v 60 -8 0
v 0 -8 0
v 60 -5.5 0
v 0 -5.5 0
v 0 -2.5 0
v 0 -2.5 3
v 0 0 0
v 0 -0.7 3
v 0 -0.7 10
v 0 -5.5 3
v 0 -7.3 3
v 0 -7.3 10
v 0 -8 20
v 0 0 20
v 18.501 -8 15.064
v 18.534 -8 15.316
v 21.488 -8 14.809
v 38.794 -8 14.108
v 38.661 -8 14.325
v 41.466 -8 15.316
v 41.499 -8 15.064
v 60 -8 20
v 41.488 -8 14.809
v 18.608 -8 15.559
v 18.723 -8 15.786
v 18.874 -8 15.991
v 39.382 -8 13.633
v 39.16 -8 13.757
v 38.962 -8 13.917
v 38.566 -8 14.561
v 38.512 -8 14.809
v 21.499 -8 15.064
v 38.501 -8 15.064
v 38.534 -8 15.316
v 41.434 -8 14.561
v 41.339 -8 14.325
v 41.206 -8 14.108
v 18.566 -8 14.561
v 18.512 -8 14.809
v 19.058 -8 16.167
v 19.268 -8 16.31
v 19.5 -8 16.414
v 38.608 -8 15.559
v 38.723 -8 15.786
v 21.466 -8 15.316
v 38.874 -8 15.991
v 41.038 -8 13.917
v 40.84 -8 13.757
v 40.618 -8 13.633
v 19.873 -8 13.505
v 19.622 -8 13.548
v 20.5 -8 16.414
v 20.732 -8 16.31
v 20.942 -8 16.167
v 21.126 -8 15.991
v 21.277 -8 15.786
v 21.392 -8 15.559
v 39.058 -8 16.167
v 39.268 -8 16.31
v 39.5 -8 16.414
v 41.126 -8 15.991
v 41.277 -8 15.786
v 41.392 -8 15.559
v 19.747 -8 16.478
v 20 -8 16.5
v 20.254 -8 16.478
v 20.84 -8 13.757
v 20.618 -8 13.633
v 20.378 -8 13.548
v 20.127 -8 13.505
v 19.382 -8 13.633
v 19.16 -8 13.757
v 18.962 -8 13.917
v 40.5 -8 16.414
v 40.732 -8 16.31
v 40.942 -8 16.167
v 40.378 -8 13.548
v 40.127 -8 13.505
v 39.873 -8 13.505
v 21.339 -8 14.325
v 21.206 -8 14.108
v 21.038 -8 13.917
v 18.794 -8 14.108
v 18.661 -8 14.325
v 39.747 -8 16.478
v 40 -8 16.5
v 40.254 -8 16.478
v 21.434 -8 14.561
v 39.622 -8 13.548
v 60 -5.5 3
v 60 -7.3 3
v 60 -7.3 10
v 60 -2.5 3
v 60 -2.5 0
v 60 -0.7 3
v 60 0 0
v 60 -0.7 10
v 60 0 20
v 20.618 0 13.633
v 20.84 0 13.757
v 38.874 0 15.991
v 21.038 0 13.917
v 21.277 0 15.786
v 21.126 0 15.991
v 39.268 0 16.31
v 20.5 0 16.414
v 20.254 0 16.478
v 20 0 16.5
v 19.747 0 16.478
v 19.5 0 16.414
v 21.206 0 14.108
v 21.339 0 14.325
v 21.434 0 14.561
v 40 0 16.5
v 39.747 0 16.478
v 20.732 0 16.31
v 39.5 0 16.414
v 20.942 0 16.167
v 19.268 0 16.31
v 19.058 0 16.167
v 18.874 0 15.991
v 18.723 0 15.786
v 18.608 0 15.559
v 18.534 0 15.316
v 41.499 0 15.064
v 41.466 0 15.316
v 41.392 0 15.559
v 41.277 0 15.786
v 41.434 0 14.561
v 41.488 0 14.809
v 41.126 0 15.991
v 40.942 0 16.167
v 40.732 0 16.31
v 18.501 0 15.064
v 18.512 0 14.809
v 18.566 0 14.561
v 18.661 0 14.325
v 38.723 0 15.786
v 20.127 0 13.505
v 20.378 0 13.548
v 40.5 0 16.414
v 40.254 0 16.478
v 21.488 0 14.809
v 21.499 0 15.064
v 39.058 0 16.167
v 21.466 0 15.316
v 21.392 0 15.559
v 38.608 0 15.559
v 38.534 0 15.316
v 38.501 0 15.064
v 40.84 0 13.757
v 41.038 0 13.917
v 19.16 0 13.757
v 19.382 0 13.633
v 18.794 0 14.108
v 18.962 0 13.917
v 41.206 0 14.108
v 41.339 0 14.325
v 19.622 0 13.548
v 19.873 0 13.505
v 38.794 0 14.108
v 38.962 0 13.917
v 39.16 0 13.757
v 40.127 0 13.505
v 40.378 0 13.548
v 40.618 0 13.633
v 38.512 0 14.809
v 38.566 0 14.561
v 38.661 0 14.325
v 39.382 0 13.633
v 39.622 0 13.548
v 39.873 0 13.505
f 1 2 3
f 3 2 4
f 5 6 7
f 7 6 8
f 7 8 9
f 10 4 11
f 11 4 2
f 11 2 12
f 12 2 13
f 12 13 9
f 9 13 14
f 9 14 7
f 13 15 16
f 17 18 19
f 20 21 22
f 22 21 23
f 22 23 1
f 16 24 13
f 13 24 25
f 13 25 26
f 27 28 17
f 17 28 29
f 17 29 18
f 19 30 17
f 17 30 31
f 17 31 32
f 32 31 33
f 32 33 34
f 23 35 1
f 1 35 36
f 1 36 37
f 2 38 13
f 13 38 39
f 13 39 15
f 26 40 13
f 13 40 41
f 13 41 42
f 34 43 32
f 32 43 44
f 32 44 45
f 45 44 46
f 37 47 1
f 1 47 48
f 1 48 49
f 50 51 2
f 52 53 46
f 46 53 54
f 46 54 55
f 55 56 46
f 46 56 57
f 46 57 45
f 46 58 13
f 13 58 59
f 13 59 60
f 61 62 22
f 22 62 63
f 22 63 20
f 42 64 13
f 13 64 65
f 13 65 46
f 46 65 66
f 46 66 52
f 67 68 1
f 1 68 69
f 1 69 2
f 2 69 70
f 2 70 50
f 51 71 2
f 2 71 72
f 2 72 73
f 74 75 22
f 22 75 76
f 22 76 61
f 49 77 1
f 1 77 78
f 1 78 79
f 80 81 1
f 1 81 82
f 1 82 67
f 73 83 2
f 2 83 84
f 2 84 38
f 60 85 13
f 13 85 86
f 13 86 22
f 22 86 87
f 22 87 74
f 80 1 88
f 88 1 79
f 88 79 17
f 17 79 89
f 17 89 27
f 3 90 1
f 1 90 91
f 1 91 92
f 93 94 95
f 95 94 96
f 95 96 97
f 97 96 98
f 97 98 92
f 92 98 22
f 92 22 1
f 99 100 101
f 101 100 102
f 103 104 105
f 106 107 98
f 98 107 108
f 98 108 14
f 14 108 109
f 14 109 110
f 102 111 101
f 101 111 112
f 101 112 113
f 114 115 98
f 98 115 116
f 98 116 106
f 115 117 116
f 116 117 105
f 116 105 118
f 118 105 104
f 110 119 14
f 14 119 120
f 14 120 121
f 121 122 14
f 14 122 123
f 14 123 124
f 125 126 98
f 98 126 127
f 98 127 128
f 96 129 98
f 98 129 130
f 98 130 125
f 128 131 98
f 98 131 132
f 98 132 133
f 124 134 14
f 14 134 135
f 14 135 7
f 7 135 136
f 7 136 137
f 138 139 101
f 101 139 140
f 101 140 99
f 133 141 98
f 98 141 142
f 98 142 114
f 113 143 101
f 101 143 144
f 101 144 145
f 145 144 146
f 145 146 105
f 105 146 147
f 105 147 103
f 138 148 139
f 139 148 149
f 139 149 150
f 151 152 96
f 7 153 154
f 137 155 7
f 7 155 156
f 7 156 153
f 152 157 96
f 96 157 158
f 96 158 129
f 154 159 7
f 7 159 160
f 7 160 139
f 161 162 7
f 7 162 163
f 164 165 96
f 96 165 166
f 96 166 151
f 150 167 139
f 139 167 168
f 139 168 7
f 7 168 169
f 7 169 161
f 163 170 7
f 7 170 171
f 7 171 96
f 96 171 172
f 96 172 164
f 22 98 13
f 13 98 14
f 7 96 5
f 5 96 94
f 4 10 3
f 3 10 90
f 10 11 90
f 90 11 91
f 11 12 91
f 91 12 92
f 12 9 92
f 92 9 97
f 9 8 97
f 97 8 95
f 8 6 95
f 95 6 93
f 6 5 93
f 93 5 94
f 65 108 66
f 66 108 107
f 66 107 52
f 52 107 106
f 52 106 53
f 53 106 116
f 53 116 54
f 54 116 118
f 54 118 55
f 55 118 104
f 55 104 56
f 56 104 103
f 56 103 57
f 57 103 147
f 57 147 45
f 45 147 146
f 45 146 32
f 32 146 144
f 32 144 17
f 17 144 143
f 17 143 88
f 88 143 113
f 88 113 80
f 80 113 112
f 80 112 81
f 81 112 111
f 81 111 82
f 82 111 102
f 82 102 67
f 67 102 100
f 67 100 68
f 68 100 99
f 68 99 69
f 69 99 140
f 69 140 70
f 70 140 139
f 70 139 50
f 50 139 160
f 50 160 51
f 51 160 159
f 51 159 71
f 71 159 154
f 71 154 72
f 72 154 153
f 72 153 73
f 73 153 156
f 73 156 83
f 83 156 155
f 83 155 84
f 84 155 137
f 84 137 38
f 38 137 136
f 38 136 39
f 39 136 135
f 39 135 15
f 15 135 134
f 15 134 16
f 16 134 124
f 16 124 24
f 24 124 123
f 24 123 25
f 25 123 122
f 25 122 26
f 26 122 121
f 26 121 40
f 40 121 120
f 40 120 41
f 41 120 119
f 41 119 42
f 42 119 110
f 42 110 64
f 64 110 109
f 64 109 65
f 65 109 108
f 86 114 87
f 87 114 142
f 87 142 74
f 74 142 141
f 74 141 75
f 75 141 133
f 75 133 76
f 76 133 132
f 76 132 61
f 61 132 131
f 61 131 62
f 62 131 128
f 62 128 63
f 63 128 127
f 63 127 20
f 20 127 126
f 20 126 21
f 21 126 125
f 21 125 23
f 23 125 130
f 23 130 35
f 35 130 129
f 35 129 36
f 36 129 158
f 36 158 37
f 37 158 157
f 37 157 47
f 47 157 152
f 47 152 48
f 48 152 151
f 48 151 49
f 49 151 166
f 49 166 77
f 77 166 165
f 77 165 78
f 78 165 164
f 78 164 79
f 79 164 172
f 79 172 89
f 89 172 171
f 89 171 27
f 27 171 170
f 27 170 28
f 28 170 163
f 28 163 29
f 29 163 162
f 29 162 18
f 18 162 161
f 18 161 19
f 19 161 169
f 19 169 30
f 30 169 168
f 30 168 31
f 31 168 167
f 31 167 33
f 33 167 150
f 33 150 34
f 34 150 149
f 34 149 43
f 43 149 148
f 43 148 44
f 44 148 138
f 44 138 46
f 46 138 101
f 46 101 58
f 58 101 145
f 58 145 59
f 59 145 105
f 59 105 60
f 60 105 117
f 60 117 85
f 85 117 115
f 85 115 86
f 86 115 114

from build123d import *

# Parameters (mm, degrees)
SKETCH1_W           = 60
SKETCH1_H           = 8
BOSS_EXTRUDE1_DEPTH = 20
CUT_EXTRUDE1_DEPTH  = 64.749509802
SKETCH4_R           = 1.5
CUT_EXTRUDE2_DEPTH  = 64.749509802


with BuildPart() as part:
    # Sketch1 → Boss-Extrude1 (new body)
    with BuildSketch(Plane.XY):
        with Locations((30, -4)):
            Rectangle(SKETCH1_W, SKETCH1_H)
    extrude(amount=BOSS_EXTRUDE1_DEPTH)

    # Sketch2 → Cut-Extrude1 (cut, through all)
    with BuildSketch(Plane(origin=(60, 0, 0), x_dir=(0, 0, -1), z_dir=(1, 0, 0))):
        Polygon((0, -4), (0, -2.5), (-3, -2.5), (-3, -0.7), (-10, -0.7), (-10, -7.3), (-3, -7.3), (-3, -5.5), (0, -5.5), align=None)
    extrude(amount=-CUT_EXTRUDE1_DEPTH, mode=Mode.SUBTRACT)

    # Sketch4 → Cut-Extrude2 (cut, through all)
    with BuildSketch(Plane(origin=(0, 0, 0), x_dir=(1, 0, 0), z_dir=(0, 1, 0))):
        with Locations(Location((40, -15, 0), (0, 0, 270))):
            Circle(SKETCH4_R)
        with Locations(Location((20, -15, 0), (0, 0, 270))):
            Circle(SKETCH4_R)
    extrude(amount=-CUT_EXTRUDE2_DEPTH, mode=Mode.SUBTRACT)


solid = part.part
